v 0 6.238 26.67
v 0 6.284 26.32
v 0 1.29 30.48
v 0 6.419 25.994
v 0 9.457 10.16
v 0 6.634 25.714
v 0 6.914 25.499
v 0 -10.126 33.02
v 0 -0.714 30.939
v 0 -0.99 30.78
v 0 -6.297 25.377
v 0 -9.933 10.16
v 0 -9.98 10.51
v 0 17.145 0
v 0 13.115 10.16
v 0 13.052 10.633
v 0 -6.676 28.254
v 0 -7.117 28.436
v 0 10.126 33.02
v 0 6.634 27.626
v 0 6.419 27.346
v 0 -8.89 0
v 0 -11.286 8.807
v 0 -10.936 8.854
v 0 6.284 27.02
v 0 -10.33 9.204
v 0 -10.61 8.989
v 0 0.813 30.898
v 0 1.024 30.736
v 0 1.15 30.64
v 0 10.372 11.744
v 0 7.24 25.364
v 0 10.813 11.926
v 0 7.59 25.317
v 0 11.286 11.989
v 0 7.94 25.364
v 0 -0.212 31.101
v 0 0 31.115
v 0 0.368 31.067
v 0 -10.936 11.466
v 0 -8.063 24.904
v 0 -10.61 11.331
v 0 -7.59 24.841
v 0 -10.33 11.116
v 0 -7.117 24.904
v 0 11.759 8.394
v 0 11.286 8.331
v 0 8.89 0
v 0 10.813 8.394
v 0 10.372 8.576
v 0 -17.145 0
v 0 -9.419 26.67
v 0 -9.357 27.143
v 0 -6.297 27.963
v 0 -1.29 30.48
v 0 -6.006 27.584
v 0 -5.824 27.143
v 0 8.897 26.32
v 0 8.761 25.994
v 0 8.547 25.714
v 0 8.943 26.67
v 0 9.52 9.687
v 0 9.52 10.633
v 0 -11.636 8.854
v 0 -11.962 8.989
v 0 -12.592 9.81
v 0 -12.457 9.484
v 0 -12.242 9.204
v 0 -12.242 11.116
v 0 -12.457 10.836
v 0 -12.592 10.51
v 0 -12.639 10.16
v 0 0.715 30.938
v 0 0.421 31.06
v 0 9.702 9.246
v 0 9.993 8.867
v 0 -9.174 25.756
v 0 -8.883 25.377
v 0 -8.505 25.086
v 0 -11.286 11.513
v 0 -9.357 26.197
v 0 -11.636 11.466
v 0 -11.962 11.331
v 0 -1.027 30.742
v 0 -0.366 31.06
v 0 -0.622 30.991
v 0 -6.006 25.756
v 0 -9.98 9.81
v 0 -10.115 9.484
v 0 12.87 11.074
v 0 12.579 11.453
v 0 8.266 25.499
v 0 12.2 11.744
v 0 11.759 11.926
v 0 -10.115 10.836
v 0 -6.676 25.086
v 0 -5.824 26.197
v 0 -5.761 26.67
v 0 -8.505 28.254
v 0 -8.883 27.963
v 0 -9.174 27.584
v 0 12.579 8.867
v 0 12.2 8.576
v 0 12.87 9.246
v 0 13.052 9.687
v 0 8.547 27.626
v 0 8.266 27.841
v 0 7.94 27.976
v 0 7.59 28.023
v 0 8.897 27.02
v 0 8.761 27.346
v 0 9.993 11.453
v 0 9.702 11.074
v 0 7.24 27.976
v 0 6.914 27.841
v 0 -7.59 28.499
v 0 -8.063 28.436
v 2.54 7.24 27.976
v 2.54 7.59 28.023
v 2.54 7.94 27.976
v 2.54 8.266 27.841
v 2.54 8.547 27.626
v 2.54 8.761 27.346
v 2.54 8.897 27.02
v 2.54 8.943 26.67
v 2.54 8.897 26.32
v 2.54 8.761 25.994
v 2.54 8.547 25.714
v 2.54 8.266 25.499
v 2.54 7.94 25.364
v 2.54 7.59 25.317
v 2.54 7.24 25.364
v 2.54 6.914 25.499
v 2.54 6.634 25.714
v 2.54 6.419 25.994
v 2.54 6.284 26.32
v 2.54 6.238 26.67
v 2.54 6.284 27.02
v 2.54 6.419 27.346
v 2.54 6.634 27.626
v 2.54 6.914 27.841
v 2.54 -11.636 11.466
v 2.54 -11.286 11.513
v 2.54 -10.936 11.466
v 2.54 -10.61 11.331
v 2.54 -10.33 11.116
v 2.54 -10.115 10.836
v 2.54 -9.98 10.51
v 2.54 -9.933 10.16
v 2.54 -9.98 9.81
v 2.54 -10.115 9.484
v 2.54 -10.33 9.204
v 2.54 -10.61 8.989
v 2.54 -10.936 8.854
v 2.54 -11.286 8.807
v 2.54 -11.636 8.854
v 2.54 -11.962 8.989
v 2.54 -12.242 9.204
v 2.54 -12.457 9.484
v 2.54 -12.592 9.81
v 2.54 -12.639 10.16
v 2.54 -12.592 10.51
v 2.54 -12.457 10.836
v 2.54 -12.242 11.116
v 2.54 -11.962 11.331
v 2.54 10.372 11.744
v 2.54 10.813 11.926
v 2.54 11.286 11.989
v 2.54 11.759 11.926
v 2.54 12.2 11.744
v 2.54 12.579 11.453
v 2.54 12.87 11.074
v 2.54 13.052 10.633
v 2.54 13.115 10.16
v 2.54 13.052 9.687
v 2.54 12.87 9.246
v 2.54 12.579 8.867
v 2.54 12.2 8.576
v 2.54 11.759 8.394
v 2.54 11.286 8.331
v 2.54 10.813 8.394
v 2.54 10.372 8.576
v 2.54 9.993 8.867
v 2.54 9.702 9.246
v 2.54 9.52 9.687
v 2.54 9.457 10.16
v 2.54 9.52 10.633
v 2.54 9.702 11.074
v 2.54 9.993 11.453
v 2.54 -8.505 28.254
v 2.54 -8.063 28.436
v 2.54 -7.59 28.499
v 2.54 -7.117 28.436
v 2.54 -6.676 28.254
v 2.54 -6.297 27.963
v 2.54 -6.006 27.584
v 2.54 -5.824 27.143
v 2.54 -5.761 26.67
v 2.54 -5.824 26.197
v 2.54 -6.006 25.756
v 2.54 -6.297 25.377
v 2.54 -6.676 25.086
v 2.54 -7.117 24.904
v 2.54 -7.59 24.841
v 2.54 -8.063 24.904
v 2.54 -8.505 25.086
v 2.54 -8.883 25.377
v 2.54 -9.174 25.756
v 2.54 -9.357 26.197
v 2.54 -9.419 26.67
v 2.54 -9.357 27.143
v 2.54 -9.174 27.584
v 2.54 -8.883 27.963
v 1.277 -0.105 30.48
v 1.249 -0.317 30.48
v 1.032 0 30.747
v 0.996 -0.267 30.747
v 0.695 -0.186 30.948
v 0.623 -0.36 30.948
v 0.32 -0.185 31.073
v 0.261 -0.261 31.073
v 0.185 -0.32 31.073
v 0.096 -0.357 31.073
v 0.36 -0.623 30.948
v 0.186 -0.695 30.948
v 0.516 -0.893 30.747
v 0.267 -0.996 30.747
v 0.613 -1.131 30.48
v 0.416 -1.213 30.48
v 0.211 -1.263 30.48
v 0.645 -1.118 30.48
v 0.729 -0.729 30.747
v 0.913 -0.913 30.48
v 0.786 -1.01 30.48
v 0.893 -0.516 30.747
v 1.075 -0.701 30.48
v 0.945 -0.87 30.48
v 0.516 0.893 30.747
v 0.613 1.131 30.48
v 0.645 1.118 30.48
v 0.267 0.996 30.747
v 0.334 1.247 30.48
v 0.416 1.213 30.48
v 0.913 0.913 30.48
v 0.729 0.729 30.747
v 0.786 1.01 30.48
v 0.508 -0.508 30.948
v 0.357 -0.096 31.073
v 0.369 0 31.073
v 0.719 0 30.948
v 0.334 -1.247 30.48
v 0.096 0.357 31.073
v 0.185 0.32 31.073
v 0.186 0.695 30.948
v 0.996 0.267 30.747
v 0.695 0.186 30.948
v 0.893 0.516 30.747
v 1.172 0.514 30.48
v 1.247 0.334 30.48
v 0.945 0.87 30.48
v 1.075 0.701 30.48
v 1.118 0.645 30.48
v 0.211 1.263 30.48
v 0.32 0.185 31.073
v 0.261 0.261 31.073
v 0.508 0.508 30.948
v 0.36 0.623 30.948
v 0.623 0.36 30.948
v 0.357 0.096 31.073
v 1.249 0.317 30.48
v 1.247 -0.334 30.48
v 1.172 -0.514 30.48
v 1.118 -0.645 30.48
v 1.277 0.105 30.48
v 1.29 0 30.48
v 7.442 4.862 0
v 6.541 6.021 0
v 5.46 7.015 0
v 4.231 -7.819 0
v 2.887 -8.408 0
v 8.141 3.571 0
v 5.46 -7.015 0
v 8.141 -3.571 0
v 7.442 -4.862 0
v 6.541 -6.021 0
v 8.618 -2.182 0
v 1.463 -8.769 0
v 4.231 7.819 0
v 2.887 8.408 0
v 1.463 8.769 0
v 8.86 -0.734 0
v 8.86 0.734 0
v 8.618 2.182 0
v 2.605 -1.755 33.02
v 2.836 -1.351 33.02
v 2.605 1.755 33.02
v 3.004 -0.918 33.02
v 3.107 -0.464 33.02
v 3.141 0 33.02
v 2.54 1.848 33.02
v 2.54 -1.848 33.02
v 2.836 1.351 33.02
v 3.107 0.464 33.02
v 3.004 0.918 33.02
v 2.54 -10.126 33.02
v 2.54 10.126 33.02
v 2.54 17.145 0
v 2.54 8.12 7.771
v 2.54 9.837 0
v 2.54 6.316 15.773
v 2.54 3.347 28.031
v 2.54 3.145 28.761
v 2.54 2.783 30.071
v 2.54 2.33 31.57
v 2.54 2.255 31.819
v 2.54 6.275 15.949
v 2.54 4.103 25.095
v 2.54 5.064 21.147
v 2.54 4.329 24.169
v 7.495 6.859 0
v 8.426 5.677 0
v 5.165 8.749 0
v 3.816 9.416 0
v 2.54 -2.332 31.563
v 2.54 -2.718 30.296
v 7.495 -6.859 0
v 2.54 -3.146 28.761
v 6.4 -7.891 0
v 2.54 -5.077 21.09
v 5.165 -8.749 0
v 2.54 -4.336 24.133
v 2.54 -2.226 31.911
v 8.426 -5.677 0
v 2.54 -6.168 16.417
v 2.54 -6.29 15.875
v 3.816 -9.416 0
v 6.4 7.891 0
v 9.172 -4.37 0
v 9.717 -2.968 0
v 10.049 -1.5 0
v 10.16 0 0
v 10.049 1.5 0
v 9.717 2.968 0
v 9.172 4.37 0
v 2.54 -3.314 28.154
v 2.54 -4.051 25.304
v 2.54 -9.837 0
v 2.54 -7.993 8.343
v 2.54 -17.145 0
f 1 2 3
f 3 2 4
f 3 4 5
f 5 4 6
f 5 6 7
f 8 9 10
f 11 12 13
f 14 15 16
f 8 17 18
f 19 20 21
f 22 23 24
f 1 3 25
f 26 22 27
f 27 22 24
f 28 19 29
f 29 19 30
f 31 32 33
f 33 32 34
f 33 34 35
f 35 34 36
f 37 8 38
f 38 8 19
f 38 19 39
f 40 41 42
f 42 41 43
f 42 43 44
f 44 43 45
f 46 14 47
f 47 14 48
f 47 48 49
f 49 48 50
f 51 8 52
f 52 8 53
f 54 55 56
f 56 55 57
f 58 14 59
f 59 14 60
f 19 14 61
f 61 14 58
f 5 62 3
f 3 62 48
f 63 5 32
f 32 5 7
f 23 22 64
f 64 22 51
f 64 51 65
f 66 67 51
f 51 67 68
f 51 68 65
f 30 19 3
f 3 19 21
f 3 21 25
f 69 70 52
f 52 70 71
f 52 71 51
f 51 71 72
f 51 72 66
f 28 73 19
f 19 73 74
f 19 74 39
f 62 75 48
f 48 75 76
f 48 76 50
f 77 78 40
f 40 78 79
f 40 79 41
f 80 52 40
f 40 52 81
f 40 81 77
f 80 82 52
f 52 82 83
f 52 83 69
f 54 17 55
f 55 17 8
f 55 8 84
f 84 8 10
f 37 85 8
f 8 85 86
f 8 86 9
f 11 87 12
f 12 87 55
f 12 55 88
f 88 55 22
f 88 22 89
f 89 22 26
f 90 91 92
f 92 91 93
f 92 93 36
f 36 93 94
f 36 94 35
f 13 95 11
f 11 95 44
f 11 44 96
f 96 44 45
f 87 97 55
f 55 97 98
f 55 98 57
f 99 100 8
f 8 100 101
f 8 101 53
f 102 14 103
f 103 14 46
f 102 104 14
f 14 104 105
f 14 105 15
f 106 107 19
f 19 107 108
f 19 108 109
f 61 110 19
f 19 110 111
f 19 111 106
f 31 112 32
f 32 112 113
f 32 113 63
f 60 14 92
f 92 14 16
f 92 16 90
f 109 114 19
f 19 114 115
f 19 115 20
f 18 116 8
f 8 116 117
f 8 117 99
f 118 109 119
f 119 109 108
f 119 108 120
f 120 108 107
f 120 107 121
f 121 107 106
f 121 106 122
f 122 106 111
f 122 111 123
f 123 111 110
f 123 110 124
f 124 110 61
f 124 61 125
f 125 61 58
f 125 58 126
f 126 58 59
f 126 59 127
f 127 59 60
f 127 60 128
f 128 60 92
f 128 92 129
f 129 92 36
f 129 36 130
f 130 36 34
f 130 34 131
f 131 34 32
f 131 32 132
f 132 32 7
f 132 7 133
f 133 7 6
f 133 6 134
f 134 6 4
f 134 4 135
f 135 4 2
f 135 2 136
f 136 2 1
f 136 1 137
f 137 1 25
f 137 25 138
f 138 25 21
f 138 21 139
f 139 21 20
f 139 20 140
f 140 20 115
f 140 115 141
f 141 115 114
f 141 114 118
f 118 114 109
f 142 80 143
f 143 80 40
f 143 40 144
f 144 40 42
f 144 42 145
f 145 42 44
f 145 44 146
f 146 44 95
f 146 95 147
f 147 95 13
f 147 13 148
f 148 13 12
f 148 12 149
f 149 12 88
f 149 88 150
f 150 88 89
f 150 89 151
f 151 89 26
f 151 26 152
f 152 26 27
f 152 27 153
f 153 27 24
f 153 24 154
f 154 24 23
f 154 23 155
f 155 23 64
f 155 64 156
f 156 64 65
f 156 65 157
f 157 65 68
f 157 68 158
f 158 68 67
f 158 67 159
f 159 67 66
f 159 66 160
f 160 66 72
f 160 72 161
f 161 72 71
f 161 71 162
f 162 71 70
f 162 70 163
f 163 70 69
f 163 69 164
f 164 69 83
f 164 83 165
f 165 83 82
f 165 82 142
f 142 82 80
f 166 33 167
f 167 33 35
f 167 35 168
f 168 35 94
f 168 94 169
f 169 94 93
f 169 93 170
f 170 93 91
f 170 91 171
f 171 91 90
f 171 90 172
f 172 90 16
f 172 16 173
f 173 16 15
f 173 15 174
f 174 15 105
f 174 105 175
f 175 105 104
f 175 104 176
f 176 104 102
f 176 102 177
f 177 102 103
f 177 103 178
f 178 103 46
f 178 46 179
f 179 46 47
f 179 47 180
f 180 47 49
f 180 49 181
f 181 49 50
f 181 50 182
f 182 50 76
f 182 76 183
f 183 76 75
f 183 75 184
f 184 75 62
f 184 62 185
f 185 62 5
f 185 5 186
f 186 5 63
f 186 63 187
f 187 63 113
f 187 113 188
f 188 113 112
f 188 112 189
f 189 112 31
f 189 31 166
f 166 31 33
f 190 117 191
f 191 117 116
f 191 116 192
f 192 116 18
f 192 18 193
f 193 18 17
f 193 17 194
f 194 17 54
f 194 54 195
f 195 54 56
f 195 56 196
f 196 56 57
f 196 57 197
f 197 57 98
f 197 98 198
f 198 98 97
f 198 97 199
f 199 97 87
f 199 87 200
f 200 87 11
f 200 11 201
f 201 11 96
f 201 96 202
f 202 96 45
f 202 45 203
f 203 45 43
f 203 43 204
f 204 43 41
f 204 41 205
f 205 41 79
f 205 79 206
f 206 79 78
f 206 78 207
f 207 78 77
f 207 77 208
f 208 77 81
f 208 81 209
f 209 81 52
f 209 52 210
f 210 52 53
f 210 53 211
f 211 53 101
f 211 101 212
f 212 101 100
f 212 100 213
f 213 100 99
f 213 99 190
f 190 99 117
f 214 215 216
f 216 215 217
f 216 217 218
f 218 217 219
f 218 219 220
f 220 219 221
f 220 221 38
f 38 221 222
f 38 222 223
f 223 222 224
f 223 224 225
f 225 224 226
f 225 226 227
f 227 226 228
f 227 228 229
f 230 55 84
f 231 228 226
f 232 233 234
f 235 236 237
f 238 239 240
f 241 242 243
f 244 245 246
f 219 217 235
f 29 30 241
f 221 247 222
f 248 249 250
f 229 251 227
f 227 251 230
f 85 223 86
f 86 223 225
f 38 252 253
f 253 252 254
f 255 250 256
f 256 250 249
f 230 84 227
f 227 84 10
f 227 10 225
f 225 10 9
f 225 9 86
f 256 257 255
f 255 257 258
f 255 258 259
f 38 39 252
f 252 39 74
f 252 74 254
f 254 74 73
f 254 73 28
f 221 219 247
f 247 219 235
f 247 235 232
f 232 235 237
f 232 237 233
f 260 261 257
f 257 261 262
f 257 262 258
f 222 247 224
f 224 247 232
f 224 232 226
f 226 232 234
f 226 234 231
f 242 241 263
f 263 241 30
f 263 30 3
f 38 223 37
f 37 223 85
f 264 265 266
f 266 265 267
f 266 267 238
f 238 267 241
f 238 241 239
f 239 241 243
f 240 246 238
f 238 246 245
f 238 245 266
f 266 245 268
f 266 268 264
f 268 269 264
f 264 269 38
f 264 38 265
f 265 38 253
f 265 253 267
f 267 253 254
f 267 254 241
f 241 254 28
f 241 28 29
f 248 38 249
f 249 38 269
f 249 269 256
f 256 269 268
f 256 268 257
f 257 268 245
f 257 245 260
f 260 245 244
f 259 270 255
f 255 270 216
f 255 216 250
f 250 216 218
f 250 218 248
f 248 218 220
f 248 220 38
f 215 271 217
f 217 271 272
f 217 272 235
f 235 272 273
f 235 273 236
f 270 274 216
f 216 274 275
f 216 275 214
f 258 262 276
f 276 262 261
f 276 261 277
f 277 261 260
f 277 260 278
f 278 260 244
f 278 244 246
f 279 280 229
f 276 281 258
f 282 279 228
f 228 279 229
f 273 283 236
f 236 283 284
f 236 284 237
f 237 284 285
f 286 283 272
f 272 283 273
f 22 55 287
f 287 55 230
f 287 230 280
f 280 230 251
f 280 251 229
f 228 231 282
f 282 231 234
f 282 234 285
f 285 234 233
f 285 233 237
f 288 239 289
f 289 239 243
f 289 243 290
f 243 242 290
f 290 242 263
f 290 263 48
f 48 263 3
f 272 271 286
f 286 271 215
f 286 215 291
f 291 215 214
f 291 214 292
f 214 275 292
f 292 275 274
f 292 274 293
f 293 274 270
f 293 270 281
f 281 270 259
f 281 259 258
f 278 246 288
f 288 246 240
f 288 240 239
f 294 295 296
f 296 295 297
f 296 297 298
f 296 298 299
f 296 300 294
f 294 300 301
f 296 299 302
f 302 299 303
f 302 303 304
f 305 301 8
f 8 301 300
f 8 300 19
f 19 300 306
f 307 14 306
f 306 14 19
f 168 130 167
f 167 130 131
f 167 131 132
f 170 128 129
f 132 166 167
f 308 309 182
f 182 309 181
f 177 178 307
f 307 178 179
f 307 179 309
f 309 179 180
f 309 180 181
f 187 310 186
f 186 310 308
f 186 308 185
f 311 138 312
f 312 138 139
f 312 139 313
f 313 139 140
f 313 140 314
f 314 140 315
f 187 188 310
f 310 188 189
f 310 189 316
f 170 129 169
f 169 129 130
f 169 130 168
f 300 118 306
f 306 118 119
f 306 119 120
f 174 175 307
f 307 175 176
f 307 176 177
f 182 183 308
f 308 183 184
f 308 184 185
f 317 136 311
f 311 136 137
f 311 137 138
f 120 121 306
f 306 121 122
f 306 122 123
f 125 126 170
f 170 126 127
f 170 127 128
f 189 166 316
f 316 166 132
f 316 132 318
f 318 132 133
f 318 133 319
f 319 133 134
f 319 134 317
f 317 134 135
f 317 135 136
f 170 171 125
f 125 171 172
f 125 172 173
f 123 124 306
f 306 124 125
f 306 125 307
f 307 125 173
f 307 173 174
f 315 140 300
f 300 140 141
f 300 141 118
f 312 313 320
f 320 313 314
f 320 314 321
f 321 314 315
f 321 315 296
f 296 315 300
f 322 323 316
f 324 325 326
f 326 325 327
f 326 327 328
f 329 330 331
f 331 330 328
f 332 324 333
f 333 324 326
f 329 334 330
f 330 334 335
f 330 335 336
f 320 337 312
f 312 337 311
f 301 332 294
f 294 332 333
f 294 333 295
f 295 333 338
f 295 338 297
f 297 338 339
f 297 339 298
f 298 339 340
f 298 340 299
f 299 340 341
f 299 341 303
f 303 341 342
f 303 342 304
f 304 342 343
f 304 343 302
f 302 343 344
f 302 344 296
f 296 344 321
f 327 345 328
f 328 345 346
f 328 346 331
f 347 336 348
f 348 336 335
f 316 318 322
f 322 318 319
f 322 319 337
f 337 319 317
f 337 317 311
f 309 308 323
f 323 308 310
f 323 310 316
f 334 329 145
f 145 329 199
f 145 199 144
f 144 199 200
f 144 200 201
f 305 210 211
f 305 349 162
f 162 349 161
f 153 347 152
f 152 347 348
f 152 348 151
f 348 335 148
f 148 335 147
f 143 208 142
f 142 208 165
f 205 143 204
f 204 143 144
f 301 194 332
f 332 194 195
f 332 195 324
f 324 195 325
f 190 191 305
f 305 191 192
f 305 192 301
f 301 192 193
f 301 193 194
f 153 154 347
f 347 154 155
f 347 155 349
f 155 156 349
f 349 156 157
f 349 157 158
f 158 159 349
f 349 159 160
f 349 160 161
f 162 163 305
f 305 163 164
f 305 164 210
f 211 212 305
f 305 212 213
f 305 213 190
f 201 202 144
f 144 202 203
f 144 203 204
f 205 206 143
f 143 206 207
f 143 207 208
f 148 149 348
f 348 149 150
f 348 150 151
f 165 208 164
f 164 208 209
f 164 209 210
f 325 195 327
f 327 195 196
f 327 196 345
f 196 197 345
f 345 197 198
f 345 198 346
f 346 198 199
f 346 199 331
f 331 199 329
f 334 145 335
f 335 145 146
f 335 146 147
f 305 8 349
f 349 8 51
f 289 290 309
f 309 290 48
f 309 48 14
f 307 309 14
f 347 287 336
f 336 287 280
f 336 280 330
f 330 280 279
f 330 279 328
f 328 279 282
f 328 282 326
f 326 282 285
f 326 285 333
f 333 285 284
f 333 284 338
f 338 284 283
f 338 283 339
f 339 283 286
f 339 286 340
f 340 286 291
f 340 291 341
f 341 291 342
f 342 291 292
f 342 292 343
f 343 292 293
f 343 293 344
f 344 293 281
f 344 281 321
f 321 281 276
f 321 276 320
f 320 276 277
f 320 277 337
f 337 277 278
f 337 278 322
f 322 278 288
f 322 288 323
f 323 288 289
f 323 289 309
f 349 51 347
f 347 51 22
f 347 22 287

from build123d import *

# Parameters (mm, degrees)
SKETCH1_R                   = 8.89
BOSS_EXTRUDE1_DEPTH         = 30.48
BOSS_EXTRUDE1_TAPER         = 14
DOME1_FACE_RADIUS           = 1.290482473
DOME1_HEIGHT                = 0.635
BOSS_EXTRUDE2_DEPTH         = 33.02
DRAFT1_ANGLE                = -12
F_27_0_144_DIAMETER_HOLE1_D = 3.6576
F_6_32_TAPPED_HOLE1_D       = 2.7051
F_6_32_TAPPED_HOLE1_DEPTH   = 11.176
F_6_32_TAPPED_HOLE1_TIP     = 0.81269403
SKETCH12_W                  = 10.592126778
SKETCH12_H                  = 34.29
CUT_EXTRUDE1_DEPTH          = 39.568082983


with BuildPart() as part:
    # Sketch1 → Boss-Extrude1 (new body)
    with BuildSketch(Plane.XY):
        Circle(SKETCH1_R)
    extrude(amount=BOSS_EXTRUDE1_DEPTH, taper=BOSS_EXTRUDE1_TAPER)

    # Dome1: a dome of height H over a round flat face of radius A is a cap of a sphere of radius (A * A + H * H) / (2 * H)
    dome1_r = (DOME1_FACE_RADIUS * DOME1_FACE_RADIUS + DOME1_HEIGHT * DOME1_HEIGHT) / (2 * DOME1_HEIGHT)
    dome1_base = Plane((0, 0, 30.48), z_dir=(0, 0, 1))
    with Locations(dome1_base.offset(DOME1_HEIGHT - dome1_r)):
        dome1_ball = Sphere(dome1_r, mode=Mode.PRIVATE)
    add(split(dome1_ball, bisect_by=dome1_base, keep=Keep.TOP, mode=Mode.PRIVATE))


with BuildPart() as body_2:
    # Sketch2 → Boss-Extrude2 (new body)
    with BuildSketch(Plane.XY):
        with BuildLine():
            Line((-2.54, 17.145), (-2.54, 9.837377699))
            ThreePointArc((-2.54, 9.837377699), (-10.16, 0), (-2.54, -9.837377699))
            Line((-2.54, -9.837377699), (-2.54, -17.145))
            Line((-2.54, -17.145), (2.54, -17.145))
            Line((2.54, -17.145), (2.54, -9.837377699))
            ThreePointArc((2.54, -9.837377699), (10.16, 0), (2.54, 9.837377699))
            Line((2.54, 9.837377699), (2.54, 17.145))
            Line((2.54, 17.145), (-2.54, 17.145))
        make_face()
    extrude(amount=BOSS_EXTRUDE2_DEPTH)

    # Combine1: read off the stored shape, not the designer's step
    # Combine1: cut part
    add(part.part, mode=Mode.SUBTRACT)

    # Draft1
    draft1_faces = [body_2.faces().sort_by_distance(p)[0] for p in [
        (0, -17.145, 16.51),
        (0, 17.145, 16.51),
        (10.16, 0, 16.51),
        (-10.16, 0, 16.51),
    ]]
    draft(draft1_faces, Plane(origin=(0, 0, 0), x_dir=(-1, 0, 0), z_dir=(0, 0, -1)), DRAFT1_ANGLE)

    # #27 (0.144) Diameter Hole1 (through all)
    with Locations(Plane.ZY.offset(2.54)):
        with Locations((10.16, 11.285999498), (26.67, -7.590126179)):
            Hole(F_27_0_144_DIAMETER_HOLE1_D / 2)

    # #6-32 Tapped Hole1
    with Locations(Plane.ZY.offset(2.54)):
        with Locations((26.67, 7.590126179), (10.16, -11.285999498)):
            Hole(F_6_32_TAPPED_HOLE1_D / 2, depth=F_6_32_TAPPED_HOLE1_DEPTH)
            with Locations((0, 0, -(F_6_32_TAPPED_HOLE1_DEPTH + F_6_32_TAPPED_HOLE1_TIP / 2))):  # 118° drill point
                Cone(0, F_6_32_TAPPED_HOLE1_D / 2, F_6_32_TAPPED_HOLE1_TIP, mode=Mode.SUBTRACT)

    # Sketch12 → Cut-Extrude1 (cut, through all)
    with BuildSketch(Plane(origin=(0, 0, 0), x_dir=(-1, 0, 0), z_dir=(0, 0, -1))):
        with Locations((5.296063389, 0)):
            Rectangle(SKETCH12_W, SKETCH12_H)
    extrude(amount=-CUT_EXTRUDE1_DEPTH, mode=Mode.SUBTRACT)


solid = body_2.part
